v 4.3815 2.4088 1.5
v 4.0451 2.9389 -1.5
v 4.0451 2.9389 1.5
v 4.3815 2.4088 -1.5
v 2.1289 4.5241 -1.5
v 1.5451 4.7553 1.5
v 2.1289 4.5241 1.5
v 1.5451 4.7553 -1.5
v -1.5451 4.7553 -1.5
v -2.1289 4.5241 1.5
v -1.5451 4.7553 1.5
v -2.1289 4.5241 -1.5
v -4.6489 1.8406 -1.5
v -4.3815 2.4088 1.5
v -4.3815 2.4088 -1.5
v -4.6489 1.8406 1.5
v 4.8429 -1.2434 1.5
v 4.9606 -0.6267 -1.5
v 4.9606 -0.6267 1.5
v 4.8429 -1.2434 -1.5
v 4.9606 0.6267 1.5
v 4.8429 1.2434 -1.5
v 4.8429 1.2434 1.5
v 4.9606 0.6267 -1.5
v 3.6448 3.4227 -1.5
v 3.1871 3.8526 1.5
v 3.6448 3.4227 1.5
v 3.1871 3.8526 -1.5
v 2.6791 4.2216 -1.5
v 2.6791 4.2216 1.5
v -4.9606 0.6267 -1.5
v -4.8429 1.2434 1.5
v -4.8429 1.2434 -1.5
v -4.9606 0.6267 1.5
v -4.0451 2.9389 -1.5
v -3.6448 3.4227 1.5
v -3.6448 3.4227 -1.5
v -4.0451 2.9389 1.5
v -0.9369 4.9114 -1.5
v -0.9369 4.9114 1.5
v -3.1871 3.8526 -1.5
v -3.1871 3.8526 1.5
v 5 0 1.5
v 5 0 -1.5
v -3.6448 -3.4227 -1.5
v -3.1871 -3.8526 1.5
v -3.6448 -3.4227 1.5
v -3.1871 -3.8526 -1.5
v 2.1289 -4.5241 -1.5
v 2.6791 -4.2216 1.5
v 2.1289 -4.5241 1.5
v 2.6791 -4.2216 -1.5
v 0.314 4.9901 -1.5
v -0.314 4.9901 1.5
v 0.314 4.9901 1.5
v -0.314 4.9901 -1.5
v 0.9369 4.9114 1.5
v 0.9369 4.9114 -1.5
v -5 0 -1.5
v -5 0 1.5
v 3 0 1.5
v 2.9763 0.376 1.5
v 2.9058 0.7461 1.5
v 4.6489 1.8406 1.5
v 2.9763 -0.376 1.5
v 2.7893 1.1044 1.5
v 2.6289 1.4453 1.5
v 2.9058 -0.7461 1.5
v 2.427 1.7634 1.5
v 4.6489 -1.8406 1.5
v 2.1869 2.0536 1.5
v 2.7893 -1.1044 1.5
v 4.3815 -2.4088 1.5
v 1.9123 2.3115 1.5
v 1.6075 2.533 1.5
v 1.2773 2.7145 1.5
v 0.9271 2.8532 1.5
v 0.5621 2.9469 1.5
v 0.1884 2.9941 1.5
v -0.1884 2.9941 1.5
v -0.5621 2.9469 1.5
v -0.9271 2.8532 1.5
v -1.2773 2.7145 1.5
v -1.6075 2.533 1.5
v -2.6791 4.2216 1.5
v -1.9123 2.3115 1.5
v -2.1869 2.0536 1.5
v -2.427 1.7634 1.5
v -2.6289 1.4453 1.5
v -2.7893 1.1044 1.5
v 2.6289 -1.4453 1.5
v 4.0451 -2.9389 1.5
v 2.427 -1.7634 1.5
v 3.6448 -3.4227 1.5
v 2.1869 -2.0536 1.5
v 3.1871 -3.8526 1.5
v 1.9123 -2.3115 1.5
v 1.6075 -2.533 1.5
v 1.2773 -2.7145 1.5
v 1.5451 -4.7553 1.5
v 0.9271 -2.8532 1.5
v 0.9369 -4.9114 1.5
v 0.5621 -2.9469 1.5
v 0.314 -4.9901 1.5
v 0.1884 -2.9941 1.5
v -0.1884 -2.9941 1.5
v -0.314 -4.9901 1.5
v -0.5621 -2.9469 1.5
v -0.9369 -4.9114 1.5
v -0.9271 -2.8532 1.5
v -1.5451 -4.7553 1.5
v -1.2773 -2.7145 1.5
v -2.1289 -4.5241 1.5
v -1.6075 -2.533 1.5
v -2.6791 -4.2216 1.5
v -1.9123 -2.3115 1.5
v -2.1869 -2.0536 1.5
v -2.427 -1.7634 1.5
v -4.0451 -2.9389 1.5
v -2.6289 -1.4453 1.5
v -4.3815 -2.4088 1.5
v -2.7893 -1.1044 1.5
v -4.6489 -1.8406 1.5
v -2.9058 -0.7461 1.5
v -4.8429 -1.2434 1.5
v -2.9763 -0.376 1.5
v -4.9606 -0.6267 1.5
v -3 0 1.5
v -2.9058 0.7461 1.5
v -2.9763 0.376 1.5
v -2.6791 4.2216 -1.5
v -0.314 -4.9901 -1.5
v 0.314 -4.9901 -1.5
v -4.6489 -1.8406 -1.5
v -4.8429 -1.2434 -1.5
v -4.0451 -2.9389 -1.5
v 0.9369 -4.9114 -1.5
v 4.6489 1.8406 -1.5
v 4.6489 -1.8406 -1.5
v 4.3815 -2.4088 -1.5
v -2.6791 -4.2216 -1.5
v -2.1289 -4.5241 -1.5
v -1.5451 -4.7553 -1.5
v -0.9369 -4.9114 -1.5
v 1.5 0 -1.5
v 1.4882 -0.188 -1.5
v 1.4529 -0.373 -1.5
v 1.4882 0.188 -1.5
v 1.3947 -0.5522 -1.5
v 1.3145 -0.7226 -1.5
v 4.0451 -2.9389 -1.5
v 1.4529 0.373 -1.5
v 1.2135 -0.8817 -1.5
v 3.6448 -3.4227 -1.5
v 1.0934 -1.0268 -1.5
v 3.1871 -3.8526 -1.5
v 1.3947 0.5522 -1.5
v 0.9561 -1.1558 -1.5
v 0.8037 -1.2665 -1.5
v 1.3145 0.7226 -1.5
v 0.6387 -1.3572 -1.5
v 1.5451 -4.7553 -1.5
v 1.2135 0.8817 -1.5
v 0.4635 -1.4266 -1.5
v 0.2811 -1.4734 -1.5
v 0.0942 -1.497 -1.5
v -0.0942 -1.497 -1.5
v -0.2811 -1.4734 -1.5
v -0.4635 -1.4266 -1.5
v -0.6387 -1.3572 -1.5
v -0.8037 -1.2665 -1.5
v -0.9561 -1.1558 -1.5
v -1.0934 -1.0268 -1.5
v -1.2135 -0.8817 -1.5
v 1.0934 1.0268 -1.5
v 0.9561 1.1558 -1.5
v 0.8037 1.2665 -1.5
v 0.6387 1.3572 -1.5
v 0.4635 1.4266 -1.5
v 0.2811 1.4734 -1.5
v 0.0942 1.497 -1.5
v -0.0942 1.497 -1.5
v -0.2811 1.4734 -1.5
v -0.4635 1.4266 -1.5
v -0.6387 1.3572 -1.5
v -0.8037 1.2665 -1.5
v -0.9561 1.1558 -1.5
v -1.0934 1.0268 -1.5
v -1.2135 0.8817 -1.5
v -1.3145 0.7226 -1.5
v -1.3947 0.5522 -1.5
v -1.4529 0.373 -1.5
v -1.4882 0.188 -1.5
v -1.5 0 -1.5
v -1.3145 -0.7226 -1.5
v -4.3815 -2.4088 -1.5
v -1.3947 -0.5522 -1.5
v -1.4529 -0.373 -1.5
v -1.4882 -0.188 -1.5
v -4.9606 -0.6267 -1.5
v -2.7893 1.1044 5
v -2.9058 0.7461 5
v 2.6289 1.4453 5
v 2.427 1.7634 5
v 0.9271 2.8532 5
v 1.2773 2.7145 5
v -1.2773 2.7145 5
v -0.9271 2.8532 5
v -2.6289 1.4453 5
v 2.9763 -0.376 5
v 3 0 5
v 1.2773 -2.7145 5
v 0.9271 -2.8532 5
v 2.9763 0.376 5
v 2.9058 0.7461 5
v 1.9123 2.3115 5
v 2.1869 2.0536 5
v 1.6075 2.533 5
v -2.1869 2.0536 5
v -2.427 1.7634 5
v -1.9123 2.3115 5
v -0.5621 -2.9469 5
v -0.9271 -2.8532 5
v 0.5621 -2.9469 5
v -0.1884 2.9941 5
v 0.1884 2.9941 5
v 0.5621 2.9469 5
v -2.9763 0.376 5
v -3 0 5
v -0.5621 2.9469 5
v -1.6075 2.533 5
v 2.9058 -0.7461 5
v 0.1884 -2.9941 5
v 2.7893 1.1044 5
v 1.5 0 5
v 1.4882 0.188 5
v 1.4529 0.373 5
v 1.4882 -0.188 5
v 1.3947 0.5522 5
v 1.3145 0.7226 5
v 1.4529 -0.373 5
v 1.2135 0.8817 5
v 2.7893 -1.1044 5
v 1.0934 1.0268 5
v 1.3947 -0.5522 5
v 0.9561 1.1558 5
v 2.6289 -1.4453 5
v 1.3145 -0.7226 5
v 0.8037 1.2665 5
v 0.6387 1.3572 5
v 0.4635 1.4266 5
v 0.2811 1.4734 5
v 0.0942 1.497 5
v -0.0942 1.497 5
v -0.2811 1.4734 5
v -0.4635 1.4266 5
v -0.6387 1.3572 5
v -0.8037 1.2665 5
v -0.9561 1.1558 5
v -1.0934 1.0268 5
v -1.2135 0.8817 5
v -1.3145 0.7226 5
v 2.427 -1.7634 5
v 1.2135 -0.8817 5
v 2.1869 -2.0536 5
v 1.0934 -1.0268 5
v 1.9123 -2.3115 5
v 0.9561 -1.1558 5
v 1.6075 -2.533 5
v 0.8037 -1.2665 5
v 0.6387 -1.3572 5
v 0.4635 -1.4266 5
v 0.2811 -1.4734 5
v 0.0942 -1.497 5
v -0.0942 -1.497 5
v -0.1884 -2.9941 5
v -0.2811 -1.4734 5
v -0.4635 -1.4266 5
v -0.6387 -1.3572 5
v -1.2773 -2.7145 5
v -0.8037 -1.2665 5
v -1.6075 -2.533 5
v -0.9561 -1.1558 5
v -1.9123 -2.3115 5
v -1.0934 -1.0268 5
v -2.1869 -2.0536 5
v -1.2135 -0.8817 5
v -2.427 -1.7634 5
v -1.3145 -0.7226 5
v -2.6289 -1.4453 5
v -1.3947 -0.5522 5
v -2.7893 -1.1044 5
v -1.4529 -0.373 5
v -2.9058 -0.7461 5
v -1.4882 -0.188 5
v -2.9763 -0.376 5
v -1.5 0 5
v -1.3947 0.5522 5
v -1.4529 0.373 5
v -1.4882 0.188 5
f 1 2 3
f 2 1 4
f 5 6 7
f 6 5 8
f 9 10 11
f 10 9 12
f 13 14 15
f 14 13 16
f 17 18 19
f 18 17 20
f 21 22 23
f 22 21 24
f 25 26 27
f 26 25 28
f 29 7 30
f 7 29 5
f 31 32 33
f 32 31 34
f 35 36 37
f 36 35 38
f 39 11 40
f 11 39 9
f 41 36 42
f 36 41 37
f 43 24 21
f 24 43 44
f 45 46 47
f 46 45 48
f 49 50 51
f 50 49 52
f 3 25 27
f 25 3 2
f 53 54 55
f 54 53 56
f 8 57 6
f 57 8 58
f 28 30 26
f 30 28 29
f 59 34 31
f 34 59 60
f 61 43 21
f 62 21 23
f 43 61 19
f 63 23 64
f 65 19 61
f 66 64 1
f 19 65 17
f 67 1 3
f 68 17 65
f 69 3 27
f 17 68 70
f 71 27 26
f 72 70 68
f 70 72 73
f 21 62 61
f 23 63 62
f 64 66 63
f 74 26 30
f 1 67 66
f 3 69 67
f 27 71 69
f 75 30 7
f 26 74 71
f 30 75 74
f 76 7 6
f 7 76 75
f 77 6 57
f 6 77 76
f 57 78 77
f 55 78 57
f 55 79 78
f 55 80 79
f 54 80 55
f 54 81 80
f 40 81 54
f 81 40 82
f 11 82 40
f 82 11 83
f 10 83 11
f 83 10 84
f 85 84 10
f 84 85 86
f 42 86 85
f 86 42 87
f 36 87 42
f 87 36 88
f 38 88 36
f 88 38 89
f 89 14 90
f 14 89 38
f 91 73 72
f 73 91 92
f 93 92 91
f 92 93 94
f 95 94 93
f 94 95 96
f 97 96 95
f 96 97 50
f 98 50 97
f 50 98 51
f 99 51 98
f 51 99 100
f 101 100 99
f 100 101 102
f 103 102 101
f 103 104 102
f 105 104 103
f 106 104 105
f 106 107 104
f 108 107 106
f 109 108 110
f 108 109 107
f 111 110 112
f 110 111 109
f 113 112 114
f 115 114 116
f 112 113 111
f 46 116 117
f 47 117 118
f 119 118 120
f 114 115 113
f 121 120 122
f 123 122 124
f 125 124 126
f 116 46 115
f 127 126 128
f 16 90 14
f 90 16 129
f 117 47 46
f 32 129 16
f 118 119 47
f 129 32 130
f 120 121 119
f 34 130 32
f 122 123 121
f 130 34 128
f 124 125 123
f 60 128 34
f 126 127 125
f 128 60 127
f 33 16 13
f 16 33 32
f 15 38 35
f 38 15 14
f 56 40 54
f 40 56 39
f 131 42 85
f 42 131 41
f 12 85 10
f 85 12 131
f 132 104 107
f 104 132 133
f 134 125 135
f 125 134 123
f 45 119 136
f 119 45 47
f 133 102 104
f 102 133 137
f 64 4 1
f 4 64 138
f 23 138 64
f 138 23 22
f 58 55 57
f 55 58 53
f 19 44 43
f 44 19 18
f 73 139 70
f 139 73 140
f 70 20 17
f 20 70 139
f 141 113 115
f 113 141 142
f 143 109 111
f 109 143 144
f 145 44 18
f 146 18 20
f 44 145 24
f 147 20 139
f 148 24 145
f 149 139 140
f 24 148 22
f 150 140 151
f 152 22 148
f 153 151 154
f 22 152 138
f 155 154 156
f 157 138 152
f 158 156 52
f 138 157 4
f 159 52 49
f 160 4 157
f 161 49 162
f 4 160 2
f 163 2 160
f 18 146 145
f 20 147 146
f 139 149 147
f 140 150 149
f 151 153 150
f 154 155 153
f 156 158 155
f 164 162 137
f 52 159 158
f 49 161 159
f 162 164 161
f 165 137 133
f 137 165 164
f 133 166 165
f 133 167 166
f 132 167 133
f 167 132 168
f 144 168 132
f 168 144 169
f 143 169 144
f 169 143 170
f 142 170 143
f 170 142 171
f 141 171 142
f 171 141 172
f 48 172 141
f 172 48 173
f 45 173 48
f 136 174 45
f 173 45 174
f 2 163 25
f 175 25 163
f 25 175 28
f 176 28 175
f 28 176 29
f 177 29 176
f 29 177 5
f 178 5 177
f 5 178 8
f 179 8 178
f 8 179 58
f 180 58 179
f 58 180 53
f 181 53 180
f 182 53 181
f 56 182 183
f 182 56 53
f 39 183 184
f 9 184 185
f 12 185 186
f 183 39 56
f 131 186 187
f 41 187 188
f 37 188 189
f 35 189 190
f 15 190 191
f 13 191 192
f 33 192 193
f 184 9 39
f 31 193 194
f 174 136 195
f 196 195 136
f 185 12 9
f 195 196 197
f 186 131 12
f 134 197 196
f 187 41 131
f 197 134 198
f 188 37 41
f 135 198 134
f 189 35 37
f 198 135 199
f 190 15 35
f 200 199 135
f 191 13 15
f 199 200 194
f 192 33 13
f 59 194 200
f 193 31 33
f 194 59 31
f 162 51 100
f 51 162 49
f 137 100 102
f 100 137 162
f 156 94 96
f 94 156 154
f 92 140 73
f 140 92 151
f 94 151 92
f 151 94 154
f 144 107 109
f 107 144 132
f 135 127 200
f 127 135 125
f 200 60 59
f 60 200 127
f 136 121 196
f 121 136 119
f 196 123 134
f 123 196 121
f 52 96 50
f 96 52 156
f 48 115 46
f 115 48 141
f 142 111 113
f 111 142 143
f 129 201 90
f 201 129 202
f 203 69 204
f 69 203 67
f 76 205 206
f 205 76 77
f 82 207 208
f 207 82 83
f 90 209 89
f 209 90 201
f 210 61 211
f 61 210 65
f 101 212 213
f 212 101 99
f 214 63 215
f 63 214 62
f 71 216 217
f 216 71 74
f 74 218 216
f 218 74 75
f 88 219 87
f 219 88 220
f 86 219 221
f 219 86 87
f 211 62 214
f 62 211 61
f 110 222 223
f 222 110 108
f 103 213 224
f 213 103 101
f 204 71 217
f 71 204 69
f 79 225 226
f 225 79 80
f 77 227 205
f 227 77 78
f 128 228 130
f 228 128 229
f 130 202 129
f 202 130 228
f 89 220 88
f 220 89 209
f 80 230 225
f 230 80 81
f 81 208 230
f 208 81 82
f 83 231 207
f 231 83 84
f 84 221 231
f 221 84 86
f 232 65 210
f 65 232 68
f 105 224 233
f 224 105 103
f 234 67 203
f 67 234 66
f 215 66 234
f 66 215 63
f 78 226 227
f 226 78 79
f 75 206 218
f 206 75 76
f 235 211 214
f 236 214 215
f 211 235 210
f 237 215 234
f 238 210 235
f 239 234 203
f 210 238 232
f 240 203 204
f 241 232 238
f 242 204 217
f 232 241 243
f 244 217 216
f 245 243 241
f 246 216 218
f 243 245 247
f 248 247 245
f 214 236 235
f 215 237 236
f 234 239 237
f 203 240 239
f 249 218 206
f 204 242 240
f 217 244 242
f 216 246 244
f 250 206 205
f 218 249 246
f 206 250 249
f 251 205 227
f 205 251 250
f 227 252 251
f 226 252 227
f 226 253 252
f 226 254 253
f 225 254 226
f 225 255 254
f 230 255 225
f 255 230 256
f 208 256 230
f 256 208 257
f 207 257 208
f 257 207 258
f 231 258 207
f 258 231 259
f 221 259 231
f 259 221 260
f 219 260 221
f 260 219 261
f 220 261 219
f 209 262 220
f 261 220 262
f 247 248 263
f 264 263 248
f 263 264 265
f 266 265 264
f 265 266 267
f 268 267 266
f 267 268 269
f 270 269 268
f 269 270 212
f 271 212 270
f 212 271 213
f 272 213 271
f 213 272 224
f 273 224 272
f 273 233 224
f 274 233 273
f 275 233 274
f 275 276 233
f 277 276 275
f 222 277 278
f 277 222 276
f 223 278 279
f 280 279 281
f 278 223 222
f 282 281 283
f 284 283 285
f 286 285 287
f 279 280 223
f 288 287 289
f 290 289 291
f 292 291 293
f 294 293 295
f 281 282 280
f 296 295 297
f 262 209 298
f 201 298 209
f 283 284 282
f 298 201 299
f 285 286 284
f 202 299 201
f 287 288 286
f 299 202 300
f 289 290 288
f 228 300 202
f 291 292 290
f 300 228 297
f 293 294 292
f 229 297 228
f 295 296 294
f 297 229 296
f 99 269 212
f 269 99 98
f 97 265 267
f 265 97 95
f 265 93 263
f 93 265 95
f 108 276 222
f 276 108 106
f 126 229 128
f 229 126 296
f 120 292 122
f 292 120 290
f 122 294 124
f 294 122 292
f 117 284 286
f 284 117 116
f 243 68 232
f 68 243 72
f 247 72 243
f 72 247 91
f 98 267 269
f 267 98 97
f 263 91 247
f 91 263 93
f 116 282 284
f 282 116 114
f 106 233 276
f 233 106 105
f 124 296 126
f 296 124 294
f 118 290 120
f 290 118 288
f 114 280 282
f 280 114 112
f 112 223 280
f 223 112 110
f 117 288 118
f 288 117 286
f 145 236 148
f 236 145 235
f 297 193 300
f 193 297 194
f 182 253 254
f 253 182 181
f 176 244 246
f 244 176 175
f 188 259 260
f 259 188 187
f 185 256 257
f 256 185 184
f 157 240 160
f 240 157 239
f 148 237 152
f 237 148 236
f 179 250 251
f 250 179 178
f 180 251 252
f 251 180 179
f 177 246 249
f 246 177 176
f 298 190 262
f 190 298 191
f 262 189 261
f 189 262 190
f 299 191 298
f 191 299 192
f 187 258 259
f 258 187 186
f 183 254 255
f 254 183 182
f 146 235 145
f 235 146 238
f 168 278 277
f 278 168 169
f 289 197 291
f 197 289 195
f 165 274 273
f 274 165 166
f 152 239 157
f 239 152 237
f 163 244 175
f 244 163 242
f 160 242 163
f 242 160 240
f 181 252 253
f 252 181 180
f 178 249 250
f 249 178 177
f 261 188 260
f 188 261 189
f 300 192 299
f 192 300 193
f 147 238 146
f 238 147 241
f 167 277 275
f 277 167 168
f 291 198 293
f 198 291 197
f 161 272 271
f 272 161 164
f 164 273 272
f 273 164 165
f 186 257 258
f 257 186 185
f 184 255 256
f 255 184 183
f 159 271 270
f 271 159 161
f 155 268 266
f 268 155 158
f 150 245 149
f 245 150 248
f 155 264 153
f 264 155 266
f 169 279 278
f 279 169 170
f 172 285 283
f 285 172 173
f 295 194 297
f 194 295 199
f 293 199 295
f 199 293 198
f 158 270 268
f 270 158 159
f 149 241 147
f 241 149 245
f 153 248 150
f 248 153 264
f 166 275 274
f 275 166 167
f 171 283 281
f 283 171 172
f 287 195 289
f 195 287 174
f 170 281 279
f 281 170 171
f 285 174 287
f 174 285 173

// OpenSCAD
$fn = 50;


difference() {
	union() {
		translate(v = [0, 0, -1.5000000000]) {
			rotate(a = [0, 0, 0]) {
				cylinder(h = 3, r = 5.0000000000);
			}
		}
		translate(v = [0, 0, -1.5000000000]) {
			rotate(a = [0, 0, 0]) {
				cylinder(h = 6.5000000000, r = 3.0000000000);
			}
		}
	}
	union() {
		translate(v = [0, 0, -125.0000000000]) {
			rotate(a = [0, 0, 0]) {
				cylinder(h = 250, r = 1.5000000000);
			}
		}
	}
}
